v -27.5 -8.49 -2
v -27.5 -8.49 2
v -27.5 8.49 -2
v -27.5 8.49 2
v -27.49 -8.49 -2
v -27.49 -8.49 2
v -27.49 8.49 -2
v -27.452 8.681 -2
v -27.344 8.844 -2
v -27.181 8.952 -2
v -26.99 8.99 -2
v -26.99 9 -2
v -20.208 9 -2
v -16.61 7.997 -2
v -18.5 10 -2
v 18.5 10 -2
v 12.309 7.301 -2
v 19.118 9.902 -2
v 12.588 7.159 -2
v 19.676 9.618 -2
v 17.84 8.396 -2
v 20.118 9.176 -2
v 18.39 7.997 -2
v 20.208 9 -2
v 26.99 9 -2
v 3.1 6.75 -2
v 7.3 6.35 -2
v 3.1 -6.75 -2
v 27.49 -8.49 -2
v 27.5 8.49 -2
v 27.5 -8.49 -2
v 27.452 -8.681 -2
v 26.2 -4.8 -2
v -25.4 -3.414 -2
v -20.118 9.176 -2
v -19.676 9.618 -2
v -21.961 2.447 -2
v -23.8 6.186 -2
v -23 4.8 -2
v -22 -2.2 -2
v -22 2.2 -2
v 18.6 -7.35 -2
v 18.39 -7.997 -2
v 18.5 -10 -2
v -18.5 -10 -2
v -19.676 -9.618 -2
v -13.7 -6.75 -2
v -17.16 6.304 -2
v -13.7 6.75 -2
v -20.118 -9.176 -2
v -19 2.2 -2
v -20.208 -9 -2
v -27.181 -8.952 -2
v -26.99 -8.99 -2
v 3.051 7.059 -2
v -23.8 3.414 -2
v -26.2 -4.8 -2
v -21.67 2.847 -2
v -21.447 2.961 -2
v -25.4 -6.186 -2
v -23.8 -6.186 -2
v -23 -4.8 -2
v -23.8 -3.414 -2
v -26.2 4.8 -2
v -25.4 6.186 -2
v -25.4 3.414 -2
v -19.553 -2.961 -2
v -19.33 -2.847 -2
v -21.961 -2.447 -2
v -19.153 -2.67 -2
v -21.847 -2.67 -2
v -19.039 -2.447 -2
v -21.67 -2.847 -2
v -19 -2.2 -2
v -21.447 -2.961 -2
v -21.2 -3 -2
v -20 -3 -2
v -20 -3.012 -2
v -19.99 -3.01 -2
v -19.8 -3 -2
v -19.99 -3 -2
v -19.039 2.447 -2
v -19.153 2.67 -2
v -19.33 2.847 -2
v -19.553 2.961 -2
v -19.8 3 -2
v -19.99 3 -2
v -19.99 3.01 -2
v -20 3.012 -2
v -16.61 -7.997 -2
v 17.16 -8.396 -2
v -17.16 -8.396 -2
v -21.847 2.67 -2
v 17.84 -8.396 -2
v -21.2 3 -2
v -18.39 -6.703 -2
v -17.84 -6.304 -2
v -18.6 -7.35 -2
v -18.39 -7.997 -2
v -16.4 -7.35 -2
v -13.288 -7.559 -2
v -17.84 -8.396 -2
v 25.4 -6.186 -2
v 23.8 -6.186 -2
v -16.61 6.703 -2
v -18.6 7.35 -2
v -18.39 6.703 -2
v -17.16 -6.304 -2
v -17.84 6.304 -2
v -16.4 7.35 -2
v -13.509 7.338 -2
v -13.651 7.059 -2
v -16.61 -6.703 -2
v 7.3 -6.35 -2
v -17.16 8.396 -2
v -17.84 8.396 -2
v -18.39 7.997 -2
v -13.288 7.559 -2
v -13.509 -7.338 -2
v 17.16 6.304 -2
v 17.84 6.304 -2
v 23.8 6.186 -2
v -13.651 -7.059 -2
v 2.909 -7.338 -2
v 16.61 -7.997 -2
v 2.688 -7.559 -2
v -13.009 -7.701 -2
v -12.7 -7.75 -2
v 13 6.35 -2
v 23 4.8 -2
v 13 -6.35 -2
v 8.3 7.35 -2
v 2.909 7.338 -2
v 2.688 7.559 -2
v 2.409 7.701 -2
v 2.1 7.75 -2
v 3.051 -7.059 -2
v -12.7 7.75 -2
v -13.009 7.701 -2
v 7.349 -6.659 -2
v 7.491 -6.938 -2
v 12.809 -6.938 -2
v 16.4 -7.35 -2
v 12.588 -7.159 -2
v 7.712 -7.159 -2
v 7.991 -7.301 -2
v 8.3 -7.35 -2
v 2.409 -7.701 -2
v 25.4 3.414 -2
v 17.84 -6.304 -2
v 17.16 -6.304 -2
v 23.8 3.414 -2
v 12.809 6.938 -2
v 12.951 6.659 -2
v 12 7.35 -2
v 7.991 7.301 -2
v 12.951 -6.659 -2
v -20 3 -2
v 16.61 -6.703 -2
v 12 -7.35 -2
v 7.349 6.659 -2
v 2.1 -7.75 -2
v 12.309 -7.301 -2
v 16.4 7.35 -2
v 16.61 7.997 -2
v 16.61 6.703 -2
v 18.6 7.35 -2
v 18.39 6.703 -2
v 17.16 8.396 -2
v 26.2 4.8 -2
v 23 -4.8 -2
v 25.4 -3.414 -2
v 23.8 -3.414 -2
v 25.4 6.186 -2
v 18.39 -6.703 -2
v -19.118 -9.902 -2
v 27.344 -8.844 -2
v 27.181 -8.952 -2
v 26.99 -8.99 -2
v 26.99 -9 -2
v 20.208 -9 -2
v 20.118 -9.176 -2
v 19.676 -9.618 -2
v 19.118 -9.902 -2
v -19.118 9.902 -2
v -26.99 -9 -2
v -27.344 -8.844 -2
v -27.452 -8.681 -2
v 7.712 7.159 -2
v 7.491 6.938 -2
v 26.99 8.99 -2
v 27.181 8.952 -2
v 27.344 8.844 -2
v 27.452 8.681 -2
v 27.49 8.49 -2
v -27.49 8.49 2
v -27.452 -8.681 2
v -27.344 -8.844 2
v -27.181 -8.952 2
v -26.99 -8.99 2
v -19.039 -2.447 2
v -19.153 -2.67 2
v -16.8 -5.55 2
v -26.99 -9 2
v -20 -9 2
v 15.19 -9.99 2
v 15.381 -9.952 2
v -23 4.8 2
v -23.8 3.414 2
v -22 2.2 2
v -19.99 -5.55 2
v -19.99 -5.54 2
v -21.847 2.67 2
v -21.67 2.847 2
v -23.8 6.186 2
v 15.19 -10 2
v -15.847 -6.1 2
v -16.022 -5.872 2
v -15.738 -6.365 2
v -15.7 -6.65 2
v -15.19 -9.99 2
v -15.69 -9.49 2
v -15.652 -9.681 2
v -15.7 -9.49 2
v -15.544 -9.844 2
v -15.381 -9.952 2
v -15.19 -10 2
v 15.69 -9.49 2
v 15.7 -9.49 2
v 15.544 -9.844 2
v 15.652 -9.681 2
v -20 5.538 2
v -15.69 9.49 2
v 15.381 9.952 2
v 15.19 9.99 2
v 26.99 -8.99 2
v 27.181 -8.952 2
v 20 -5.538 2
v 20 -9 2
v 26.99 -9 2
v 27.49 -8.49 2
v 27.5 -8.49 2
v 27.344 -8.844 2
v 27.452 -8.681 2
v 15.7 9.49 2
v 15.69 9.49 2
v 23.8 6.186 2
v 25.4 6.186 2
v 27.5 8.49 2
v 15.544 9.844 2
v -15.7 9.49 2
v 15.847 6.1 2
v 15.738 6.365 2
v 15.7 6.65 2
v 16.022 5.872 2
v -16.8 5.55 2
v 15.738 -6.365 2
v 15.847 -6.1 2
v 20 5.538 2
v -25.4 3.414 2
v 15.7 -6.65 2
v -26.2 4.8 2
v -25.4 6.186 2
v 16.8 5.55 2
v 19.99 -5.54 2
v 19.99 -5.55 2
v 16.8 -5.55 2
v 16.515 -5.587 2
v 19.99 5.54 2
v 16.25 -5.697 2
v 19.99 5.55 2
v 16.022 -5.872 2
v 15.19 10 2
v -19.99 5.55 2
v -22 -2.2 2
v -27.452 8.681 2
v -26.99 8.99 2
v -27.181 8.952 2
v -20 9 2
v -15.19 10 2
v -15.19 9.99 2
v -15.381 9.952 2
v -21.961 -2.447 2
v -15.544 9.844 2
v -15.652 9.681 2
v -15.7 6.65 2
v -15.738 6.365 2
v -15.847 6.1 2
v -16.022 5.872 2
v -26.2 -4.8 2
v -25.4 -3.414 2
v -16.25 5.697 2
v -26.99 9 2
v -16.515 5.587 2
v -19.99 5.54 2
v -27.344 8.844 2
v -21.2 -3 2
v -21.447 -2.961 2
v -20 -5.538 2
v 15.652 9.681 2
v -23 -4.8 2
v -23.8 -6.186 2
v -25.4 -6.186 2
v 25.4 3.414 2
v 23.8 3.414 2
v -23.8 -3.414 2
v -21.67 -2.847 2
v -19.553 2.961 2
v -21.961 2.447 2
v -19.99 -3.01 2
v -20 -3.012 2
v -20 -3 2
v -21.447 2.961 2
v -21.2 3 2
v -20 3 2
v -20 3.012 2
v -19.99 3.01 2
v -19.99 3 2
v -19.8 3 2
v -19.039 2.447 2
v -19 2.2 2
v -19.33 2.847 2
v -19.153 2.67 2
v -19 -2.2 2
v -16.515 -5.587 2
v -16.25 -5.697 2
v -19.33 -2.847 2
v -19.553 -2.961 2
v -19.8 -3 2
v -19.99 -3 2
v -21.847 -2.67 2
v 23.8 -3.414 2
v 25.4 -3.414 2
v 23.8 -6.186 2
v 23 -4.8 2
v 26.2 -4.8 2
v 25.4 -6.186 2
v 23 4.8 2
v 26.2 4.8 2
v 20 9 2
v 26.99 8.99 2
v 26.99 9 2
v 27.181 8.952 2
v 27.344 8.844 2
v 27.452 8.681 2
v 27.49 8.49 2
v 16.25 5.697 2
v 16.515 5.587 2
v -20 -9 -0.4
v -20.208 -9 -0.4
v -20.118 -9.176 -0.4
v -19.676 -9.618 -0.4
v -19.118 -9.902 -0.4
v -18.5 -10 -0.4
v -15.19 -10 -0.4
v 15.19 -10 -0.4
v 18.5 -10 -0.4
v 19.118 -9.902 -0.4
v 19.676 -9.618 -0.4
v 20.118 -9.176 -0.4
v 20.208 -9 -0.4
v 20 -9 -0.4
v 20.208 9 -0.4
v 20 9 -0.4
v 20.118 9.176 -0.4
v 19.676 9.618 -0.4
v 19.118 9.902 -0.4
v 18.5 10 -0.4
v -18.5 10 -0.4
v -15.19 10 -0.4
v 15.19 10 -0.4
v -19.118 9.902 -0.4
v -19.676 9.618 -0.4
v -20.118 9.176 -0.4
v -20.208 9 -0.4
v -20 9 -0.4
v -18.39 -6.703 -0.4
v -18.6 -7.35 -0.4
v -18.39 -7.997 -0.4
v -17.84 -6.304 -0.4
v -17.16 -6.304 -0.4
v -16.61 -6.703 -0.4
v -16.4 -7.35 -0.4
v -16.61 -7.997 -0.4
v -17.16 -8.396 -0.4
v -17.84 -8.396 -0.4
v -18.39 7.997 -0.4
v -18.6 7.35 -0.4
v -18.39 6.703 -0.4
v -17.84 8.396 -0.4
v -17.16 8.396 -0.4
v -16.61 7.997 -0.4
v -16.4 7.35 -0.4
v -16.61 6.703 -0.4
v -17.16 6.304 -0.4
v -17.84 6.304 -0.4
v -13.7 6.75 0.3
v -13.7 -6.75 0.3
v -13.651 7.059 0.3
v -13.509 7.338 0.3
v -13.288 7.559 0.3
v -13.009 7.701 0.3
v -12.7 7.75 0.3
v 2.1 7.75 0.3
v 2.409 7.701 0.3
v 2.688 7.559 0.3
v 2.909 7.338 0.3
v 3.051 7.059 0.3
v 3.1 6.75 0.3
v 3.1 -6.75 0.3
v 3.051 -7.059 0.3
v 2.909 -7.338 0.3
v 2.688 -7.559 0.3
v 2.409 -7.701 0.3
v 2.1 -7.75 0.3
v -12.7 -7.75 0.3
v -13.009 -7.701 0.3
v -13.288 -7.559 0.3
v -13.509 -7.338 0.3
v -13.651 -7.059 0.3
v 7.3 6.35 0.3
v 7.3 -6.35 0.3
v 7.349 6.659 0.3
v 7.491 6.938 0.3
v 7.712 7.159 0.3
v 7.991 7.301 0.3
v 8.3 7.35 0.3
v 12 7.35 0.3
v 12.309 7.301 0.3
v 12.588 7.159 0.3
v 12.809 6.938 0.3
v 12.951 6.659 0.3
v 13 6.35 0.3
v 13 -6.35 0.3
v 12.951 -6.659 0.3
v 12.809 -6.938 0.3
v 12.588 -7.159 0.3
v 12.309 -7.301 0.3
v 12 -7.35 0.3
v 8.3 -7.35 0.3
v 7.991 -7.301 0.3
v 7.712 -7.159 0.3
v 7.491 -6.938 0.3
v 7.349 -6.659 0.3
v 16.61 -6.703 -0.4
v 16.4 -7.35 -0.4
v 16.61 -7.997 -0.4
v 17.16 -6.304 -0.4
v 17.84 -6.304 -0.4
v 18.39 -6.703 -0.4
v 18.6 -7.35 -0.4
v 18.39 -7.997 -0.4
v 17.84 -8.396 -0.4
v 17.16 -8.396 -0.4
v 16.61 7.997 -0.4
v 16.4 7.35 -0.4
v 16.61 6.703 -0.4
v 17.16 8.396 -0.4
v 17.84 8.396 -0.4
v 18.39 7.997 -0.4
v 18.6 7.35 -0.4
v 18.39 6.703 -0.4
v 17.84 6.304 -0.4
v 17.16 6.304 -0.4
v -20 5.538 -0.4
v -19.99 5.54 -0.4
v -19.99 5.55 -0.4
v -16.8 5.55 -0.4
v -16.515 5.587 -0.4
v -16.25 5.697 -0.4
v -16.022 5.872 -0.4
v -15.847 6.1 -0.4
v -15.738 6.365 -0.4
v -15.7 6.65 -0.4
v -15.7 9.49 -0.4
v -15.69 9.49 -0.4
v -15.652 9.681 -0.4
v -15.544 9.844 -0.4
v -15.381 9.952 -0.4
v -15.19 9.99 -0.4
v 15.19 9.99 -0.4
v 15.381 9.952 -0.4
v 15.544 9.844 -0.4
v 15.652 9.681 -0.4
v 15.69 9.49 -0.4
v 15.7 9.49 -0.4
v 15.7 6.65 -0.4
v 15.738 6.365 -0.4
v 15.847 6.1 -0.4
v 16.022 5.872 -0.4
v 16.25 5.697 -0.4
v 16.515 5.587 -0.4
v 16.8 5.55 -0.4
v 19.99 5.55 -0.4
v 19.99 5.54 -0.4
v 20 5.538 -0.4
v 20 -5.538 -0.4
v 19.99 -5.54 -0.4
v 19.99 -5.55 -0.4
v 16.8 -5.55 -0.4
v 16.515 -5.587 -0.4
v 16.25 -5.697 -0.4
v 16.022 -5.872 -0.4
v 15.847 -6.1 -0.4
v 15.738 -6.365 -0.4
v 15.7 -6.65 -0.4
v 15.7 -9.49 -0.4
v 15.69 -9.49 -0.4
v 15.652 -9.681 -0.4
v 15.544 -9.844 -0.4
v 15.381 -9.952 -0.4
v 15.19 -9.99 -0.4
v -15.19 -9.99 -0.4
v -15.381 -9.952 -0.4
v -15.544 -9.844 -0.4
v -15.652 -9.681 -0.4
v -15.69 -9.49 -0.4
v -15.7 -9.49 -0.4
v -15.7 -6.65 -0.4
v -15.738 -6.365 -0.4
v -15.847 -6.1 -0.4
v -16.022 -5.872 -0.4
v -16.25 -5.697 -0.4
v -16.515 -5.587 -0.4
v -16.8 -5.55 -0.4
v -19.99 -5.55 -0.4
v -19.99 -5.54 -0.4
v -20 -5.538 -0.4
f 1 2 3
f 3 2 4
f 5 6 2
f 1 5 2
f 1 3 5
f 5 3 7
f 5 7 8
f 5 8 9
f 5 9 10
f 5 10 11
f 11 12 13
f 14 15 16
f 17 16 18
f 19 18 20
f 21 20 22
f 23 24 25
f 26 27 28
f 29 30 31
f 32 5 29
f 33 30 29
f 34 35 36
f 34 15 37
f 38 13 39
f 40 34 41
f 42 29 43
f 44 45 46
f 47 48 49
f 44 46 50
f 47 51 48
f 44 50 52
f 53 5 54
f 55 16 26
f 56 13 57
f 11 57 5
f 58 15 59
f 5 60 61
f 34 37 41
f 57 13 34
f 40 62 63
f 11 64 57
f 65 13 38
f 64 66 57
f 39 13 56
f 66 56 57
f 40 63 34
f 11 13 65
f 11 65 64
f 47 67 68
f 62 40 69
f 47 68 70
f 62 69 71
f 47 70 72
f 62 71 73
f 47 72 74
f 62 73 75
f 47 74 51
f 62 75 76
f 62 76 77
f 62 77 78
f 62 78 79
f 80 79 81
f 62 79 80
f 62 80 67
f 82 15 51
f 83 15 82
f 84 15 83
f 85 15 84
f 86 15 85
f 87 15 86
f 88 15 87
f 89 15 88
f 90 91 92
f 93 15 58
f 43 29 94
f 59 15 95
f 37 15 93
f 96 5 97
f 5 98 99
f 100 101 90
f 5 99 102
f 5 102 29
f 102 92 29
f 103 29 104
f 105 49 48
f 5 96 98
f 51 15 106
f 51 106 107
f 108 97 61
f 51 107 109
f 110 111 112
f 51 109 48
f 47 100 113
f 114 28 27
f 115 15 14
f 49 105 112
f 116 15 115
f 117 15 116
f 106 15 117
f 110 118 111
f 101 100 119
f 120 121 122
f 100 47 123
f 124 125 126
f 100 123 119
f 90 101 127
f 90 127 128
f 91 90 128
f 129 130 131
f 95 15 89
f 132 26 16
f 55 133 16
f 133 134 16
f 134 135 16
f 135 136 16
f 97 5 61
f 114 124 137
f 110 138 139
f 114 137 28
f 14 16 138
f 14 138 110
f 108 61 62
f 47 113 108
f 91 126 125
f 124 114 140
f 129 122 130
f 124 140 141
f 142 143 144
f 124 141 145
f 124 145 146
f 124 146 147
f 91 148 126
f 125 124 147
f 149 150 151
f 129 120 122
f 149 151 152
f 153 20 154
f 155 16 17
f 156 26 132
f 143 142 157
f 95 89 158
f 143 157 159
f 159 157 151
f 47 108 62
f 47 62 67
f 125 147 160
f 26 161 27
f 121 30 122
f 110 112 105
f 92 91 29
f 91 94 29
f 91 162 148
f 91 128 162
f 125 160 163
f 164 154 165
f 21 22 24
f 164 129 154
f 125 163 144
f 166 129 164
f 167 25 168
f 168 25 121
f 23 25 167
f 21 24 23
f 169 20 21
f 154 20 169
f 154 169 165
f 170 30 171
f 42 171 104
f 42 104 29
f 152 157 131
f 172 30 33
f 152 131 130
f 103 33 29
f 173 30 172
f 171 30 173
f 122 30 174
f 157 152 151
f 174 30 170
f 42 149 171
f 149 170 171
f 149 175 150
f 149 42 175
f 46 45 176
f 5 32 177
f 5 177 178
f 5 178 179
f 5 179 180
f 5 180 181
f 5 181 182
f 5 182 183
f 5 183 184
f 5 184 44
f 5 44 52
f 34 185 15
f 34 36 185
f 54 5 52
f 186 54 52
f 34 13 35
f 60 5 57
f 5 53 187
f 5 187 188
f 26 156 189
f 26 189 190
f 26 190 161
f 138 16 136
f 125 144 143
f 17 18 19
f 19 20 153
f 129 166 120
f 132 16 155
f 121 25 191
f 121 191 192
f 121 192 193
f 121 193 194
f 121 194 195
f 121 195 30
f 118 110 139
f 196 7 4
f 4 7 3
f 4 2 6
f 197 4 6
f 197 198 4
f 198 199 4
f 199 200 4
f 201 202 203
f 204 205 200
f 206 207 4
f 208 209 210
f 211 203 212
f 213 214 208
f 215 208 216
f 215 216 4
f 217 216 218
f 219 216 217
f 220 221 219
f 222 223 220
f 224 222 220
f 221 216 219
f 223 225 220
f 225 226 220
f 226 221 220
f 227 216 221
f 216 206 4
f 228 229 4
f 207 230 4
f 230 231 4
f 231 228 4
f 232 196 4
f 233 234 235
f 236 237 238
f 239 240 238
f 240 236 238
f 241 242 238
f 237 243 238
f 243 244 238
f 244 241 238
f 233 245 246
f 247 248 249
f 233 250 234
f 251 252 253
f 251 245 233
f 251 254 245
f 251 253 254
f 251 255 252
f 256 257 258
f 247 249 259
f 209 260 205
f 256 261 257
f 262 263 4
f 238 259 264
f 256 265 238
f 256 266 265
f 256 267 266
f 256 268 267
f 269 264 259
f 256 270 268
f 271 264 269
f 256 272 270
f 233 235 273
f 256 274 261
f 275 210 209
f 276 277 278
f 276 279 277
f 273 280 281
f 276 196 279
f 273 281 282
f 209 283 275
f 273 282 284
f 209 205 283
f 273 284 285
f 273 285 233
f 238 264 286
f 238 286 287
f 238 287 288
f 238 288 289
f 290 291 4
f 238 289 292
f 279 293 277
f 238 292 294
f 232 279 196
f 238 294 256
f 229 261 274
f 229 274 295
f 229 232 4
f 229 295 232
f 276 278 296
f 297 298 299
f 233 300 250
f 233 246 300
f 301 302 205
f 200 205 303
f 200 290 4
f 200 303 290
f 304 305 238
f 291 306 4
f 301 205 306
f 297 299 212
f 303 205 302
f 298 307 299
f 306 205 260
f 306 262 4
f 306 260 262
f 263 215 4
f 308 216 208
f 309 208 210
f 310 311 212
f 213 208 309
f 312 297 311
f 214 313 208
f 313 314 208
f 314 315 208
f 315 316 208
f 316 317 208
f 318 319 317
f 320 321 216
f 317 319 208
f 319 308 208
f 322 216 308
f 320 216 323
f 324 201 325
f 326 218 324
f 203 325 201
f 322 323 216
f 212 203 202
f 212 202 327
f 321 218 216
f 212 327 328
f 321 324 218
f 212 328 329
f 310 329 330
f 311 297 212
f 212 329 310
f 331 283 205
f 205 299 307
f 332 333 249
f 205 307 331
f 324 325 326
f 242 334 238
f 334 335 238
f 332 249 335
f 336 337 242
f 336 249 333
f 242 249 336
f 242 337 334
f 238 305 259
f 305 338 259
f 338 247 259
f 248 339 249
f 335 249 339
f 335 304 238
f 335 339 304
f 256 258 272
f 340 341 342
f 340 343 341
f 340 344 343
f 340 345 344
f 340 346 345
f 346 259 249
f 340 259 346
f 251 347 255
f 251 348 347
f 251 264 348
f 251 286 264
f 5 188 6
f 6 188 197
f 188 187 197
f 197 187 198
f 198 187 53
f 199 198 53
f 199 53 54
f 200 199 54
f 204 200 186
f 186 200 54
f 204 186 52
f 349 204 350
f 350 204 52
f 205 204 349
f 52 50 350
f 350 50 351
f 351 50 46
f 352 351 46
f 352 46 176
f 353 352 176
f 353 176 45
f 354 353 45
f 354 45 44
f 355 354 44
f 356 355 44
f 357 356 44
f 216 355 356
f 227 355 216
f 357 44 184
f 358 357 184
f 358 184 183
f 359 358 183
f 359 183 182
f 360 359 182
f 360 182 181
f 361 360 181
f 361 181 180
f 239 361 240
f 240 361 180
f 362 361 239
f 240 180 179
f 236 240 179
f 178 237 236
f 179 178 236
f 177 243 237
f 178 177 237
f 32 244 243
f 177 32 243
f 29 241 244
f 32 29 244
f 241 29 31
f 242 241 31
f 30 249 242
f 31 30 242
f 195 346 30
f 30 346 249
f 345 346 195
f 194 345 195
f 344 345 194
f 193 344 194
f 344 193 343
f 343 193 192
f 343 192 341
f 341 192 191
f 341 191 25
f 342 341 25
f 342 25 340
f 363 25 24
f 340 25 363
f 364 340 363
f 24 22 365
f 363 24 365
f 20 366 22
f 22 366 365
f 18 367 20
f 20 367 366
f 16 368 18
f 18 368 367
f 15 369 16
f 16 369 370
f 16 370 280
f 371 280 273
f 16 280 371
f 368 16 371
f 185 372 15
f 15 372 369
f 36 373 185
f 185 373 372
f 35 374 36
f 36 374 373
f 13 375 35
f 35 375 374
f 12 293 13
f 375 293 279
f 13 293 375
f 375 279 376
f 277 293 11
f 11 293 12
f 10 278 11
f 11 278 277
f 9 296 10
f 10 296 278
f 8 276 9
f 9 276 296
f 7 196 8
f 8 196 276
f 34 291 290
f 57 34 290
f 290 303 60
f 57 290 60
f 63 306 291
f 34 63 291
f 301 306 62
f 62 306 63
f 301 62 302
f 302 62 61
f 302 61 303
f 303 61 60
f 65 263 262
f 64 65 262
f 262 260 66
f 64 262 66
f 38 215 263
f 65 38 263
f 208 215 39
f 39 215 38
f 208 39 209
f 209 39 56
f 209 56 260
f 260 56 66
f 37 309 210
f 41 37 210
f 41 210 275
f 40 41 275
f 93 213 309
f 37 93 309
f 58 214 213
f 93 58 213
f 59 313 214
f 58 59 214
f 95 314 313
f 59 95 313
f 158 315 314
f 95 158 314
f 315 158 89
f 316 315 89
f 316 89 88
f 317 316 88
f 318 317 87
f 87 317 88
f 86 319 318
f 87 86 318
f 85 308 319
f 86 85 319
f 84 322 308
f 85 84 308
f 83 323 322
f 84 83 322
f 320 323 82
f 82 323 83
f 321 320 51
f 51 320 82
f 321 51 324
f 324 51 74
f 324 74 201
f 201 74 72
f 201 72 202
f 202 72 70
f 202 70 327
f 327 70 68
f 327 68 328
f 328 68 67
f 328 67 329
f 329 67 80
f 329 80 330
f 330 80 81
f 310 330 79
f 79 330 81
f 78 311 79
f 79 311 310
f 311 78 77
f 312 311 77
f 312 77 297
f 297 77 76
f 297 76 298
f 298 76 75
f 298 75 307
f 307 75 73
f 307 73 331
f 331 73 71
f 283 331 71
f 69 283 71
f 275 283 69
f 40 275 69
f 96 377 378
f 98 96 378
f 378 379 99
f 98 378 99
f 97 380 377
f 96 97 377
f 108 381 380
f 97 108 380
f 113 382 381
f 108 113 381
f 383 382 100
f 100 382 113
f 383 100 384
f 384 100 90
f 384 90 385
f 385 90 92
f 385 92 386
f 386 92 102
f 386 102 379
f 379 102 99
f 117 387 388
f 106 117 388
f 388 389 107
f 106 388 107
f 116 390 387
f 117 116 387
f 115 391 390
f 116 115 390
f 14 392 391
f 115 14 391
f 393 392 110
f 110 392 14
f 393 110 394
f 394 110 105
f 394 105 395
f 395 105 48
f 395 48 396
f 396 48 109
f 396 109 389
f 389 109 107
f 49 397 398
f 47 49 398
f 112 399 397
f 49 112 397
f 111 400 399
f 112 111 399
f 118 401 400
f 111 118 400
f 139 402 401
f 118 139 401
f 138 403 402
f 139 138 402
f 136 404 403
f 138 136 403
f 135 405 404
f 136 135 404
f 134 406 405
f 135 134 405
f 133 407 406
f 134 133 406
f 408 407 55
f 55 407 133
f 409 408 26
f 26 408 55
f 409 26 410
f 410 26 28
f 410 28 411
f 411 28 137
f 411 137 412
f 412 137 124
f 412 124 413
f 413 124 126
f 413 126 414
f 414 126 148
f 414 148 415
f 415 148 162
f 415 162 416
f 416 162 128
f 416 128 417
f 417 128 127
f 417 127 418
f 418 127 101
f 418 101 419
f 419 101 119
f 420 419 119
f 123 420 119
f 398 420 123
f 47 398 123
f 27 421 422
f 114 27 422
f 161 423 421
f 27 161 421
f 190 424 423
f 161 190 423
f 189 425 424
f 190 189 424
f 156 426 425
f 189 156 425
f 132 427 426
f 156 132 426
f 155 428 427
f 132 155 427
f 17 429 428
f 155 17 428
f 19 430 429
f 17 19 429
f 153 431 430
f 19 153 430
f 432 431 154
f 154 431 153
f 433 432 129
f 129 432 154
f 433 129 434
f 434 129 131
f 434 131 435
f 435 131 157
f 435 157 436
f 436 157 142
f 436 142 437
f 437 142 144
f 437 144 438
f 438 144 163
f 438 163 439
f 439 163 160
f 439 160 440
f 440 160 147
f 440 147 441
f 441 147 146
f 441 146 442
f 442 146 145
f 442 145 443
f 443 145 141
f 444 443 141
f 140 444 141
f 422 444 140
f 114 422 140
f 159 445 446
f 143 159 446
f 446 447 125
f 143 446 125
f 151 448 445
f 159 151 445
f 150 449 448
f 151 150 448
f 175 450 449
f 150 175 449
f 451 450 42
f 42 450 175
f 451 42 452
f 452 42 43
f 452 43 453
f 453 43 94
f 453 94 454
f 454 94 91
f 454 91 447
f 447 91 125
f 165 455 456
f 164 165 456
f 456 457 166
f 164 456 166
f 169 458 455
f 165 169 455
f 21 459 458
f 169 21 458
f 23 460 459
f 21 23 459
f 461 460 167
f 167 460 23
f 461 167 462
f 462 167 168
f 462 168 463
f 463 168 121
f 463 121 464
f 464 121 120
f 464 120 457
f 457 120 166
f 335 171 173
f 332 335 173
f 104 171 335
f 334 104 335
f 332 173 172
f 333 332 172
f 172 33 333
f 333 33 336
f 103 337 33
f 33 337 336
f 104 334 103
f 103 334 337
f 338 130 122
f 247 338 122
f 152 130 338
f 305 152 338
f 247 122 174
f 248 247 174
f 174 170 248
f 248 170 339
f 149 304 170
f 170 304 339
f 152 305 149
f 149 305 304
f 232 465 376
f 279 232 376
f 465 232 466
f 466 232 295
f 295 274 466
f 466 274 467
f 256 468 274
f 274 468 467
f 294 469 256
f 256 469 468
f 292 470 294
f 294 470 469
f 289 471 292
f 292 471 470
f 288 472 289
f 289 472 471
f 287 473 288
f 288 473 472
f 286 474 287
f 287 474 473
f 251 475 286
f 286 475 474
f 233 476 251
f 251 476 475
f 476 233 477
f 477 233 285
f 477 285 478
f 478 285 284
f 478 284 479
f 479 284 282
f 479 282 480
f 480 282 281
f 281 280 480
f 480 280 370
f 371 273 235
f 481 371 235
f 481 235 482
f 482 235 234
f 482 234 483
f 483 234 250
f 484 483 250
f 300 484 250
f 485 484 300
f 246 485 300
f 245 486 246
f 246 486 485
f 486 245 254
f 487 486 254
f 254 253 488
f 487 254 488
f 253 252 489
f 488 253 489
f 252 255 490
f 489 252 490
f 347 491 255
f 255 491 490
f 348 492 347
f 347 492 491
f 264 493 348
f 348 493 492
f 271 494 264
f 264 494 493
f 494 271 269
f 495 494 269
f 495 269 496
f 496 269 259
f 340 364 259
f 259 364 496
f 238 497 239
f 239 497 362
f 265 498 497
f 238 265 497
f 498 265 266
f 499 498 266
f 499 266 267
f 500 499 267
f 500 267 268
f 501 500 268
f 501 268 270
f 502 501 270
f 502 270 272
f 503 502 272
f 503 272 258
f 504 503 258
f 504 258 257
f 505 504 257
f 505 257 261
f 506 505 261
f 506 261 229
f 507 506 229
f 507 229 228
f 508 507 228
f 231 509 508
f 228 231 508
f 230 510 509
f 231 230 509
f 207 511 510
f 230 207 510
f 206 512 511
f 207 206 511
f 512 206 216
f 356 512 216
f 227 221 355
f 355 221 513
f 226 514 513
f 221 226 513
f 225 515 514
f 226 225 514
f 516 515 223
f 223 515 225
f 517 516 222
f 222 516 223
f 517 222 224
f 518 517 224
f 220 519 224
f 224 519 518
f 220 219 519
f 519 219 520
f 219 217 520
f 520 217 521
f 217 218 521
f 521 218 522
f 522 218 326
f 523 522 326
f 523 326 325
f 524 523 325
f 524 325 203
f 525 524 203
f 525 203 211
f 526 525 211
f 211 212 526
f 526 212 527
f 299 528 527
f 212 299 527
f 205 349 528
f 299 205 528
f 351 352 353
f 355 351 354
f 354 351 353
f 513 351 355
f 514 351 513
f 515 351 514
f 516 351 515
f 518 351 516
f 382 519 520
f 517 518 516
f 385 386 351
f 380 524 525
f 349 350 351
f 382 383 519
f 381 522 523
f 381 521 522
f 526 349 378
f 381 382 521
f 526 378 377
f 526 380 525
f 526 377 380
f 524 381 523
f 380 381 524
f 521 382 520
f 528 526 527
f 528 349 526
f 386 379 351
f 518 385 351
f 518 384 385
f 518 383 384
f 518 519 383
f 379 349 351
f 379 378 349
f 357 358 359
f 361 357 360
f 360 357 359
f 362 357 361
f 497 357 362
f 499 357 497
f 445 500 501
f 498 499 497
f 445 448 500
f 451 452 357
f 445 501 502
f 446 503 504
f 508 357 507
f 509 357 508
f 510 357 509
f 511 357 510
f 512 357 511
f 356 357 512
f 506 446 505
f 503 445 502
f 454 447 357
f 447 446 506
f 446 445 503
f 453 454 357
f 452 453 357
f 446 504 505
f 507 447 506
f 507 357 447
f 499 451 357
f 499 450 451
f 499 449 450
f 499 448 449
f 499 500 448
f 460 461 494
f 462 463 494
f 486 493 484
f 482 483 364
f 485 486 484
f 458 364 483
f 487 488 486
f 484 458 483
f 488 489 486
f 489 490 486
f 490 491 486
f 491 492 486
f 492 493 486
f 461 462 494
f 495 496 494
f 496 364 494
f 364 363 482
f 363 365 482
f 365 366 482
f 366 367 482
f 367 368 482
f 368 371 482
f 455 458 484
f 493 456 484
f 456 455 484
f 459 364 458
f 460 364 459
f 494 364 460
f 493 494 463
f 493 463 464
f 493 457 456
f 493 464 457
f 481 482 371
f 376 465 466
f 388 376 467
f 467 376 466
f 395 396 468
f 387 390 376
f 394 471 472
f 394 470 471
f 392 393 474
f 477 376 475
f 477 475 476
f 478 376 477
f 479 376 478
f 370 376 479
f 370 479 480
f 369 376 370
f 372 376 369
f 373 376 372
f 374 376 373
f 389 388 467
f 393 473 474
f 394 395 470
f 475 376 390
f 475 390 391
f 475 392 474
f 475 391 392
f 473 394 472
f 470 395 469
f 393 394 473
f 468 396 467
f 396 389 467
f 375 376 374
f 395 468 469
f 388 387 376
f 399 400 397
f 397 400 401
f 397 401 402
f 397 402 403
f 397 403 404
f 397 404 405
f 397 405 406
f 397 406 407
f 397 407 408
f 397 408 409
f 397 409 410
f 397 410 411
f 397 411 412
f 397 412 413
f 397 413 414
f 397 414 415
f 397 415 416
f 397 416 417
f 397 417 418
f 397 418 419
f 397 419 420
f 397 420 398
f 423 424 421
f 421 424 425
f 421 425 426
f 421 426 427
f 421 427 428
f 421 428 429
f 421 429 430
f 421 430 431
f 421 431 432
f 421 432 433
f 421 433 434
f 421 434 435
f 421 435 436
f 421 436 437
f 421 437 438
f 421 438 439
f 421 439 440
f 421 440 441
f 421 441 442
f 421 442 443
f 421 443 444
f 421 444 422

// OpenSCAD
// file: obiscad/attach.scad
//---------------------------------------------------------------
//-- Openscad Attachment library
//-- Attach easily parts. Make your designs more reusable
//---------------------------------------------------------------
//-- This is a component of the obiscad opescad tools by Obijuan
//-- (C) Juan Gonzalez-Gomez (Obijuan)
//-- Sep-2012
//---------------------------------------------------------------
//-- Released under the GPL license
//---------------------------------------------------------------

use <vector.scad>

module connector(c)
{
  p = c[0];
  v = c[1];
  ang = c[2];

  color("Gray") point(p);
  translate(p)
    color("Gray") vector(unitv(v)*6,l_arrow=2);
}


//-- a,b are connectors
module attach(a,b)
{
  //-- Get the data from the connectors
  vref = b[1];
  v = a[1];
  roll=a[2];
  pos1 = a[0];
  pos2 = b[0];

  //-------- Calculations for the "orientate operator"
  //-- Calculate the rotation axis
  raxis = cross(vref,v);
    
  //-- Calculate the angle between the vectors
  ang = anglev(vref,v);

  translate(pos1)
    //-- Orientate operator
    rotate(a=roll, v=v)  rotate(a=ang, v=raxis)
      translate(-pos2)
	child(0); 
}

module arm(debug=false)
{
  
  cube(asize,center=true);

  if (debug) {
    frame(l=10);
    connector(a);
  }
}

module Test()
{
  cube(size,center=true);
  attach(c1,a) arm(debug=true);
  attach(c2,a) arm();
}

//-- Main part
size = [10,10,10];
c1 = [ [0,0,size[2]/2], [0,0,1], 10];
c2 = [ [-size[0]/2,0,0], [-1,0,0], 90 ];

*connector(c1);
*connector(c2);
*cube(size,center=true);


//-- Attachable part
asize = [5,20,3];
a = [ [0,asize[1]/2-3,-asize[2]/2], [0,0,1], 0  ];

*translate([30,0,0])  arm(debug=true);

*attach(c1,a) arm();
*attach(c2,a) arm();
  

orientate([1,1,1])
Test();
// file: obiscad/bcube.scad
//------------------------------------------------------------------------------
//  Bevel edge cube.
//  (c) Juan Gonzalez-Gomez (Obijuan), Sep-2012
//------------------------------------------------------------------------------

//----------------- IMPLEMENTATION USING THE MINKOWSKI OPERATOR ----------------

//------------------------------------------------------------------------------
//-- Bevel Cube main function
//-- Parameters:
//--   * Size:  Cube size
//--   * cr : Corner radius (if cr==0, a standar cube is built)
//--   * cres:  Corner resolution (in points). cres=0 means flat corners
//------------------------------------------------------------------------------
module bcube(size,cr=0,cres=0)
{
  //-- Internal cube size
  bsize = size - 2*[cr,cr,0];

  //-- Get the (x,y) coorner coordinates in the 1st cuadrant
  x = bsize[0]/2;
  y = bsize[1]/2;

  //-- A corner radius of 0 means a standar cube!
  if (cr==0)
    cube(bsize,center=true);
  else {

      
      //-- The height of minkowski object is double. So
      //-- we sould scale by 0.5
      scale([1,1,0.5])

      //-- This translation is for centering the minkowski objet
      translate([-x, -y,0])

      //-- Built the  beveled cube with minkowski
      minkowski() {

        //-- Internal cube
        cube(bsize,center=true);

        //-- Cylinder in the corner (1st cuadrant)
        translate([x,y, 0])
          cylinder(r=cr, h=bsize[2],center=true, $fn=4*(cres+1));
      }
  }

}


//-- Examples of use of the bcube() module

//-- Standar cube
translate([-15,15,0])
bcube([20,20,10]);

//-- Beveled cube (0 point resolution)
translate([15,15,0])
  bcube([20,20,10],cr=4);

//-- Beveled cube (1 point resolution)
translate([-15,-15,0])
  bcube([20,20,10],cr=4, cres=1);

//-- Beveled cube (4 points resolution)
translate([15,-15,0])
  bcube([20,20,10],cr=4, cres=4);
// file: obiscad/utils.scad
//---------------------------------------------------------------
//-- Utils. General utilities...
//-- This is a component of the obiscad opescad tools by Obijuan
//-- (C) Juan Gonzalez-Gomez (Obijuan)
//-- Sep-2012
//---------------------------------------------------------------
//-- Released under the GPL license
//---------------------------------------------------------------

//-----------------------------------------------------
//-- Functions for converting a scalar into a vector:
//-----------------------------------------------------
//-- The scalar is interpreted as the x coordinate
function VX(x) = [x,0,0];

//-- The scalar is interpreted as the y coordinate
function VY(y) = [0,y,0];

//-- The scalar is interpreted as the z coordinate
function VZ(z) = [0,0,z];


//-----------------------------------------
//-- Definition for accessing vector componentes easily
//--------------------------------------------------------
X = 0;
Y = 1;
Z = 2;
// main file
//-------------------------------------------------------------------
//-- Servo lid replacement
//-- (c) Juan Gonzalez-Gomez (Obijuan). Sep-2012
//-------------------------------------------------------------------
//-- The original lid has been design for the Futaba 3003 servos
//-- But, as it is a parameterized design, the user can easily
//-- adapt to other servos
//--
//--  In addition, it is very easy to modify the lid to add a fake
//--- shaft, or in general customize it for improving the design
//--
//--  It is particulary interesting for designing robots. If a fake
//--  shaft is included, the mechanical designs are greatly simplified! 
//-------------------------------------------------------------------
//-- Released under the GPL license. 
//-------------------------------------------------------------------

//---  Obiscad!!
include <obiscad/utils.scad>
use <obiscad/bcube.scad>
use <obiscad/attach.scad>
use <obiscad/bevel.scad>

//-----------------------------------------------------------------------------------
//-- USER AREA. The user should change this parameters depending on the Servo used  
//-- The default values have been calculated for the SERVO FUTABA 3003
//-----------------------------------------------------------------------------------

//-- Fake shaft
fake_shaft = false;   //-- Set to false for removing
fake_shaft_len = 6;  //-- Shaft length
fake_shaft_diam = 8;  //-- Shaft diameter
fake_shaft_xpos = -10.1;  //-- X coordinate of the shaf position



//-------------------------- Main Base --------------------------
bsize = [41, 20, 4];  //-- base size
b_cr=2;               //-- Base corner radius
b_cres=4;             //-- Baser corner resolution


//-- ----------------------- Screw cutouts ----------------------
//-- These are the areas removed from the main base to give
//-- room to the screw heads
screw_lh = 1.6;         //- Screw layer height, Relative to the bottom
screw_head_diam = 3.2;  //-- Screw head diameter
screw_head_clear = 0.2; //-- Space between the screw head and the base


//-------------------------- Drills ------------------------------
ddiam=2.2;  //-- Drills diameter
ddx=35;     //-- Distance in the x axis between the drills
ddy=14.7;   //-- Distance in the y axis between the distance

//-------------------------- Electronic cutouts -------------------
//-- These are removed from the bottom of the base to make room
//-- for the servo electronics
elec_cutout_lh = 2.3;

//-- dimensions (on xy plane) of the cutouts
elec_cutout_dim = [
  [16.8, 15.5],   //-- Left cutout
  [5.7,  14.7],   //-- Right cutout
];

//-- Distance from the nearer drill (on the x axis)
//-- (not from the drill center, but the nearest drill surface)
//-- (so that it can be meassured easily with a caliper)
elec_cutout_clearx = [
  2.7, 3.4
];

elec_co_cr = 1;    //-- Corner radius
elec_co_cres = 4;  //-- Corner resolution

//-------------------------- Cable hole ----------------------------
//-- Cable hole dimensions
cable_hole_dim = [1.5, 6];

ch_cr = 0.8;  //-- Cable hole corner radius
ch_cres = 4;  //-- Cable hole corner resolution

//------------------------ Beveled edges -----------------------------
bevel_cr = 0.5;


//------------------------ Servo ears -----------------------
servo_ears = true;

//-- Estandar futaba ears
//ears_size = [7.0, 18, 2.5];


//-- Ears with the same height than the cover
//-- Uncomment if needed
ears_size = [7.0, 18, bsize[Z]];

ears_drill = 3.2;

//-- Penetration of ear in the cover
ear_pen = 0.5;  

//-- Ear drill coordinates
ear_drill_pos = [4.1, 9.6/2, 0];


//---------------------------------------------------------------------------------
//---        IMPLEMENTATION!!
//---------------------------------------------------------------------------------
//--  The USER should be able to change the base modifying only the above
//--  user parameters
//--
//--  The implementation is divided into 2 stages:
//--
//--  1) DATA calculation: It creates tables and definitions for further
//--     build the base more easily
//--  2) CODE: It just build the Servo Base, based only on the data
//-----------------------------------------------------------------------------------


//---------------------------------------
//-- DATA for the drills
//---------------------------------------
//-- Calculate the drill coordinates from the center of the base
dx=ddx/2;
dy=ddy/2;

//-- Build the drill table, for automating the process of 
//-- making drills
//-- All the drill are symetric respect the x and y axis
drill_table = [
  [dx,   dy, 0],
  [-dx,  dy, 0],
  [-dx, -dy, 0],
  [dx,  -dy, 0],
];


//-------------------------------------------------------------
//-- DATA for the First layer: screw layer
//-------------------------------------------------------------

//-- Extra value. Does not matter the value (but it should be > 0
extra = 5;


//-- Calculate the clear distance from the drill center
clear = screw_head_diam/2 + screw_head_clear;

//-- Calculate the cutout size
scx = bsize[X]/2-drill_table[0][X]+clear+extra;
scy = bsize[Y]/2-drill_table[0][Y]+clear+extra;
screw_cutout_size = [scx,scy, bsize[Z]];

//-- vector for the z position of the cutouts:
//-- They are screw_lh high from the bottom 
sc_z = [0,0, -bsize[Z]/2+screw_lh];


//-- Connector table. It contains the pairs of connectors for performing
//-- the attach operation.
//-- The first connector of the pair belongs to the base, the second to the cutout
//-- The connectors coordinates are relative to the drills
screw_connector_table = [

  //-- First quadrant
  [ [drill_table[0]+[-clear, -clear,0]+sc_z, [0,0,1], 0 ],  //-- First pair of connectors
   [[-screw_cutout_size[X]/2, -screw_cutout_size[Y]/2, -screw_cutout_size[Z]/2],[0,0,1],0]
  ],

  //-- Second quadrant
  [ [drill_table[1]+[clear, -clear,0]+sc_z, [0,0,1], 0 ],
    [[screw_cutout_size[X]/2, -screw_cutout_size[Y]/2, -screw_cutout_size[Z]/2],[0,0,1],0]
  ],

  //-- Third quadrant
  [ [drill_table[2]+[clear, clear,0]+sc_z, [0,0,1], 0 ],
    [[screw_cutout_size[X]/2, screw_cutout_size[Y]/2, -screw_cutout_size[Z]/2],[0,0,1],0]
  ],

  //-- Forth quadrant
  [ [drill_table[3]+[-clear, clear,0]+sc_z, [0,0,1], 0 ],
    [[-screw_cutout_size[X]/2, screw_cutout_size[Y]/2, -screw_cutout_size[Z]/2],[0,0,1],0]
  ],
 
];

//---------------------------------------
//-- DATA for the electronics cutouts
//---------------------------------------

//-- vector for the z position of the cutouts:
//-- They are elec_cutout_lh high from the bottom 
ec_z = [0,0, -bsize[Z]/2+elec_cutout_lh];

//-- Auxiliary table with the cutout size
elec_co_size = [
  [elec_cutout_dim[0][X], elec_cutout_dim[0][Y], bsize[Z]],
  [elec_cutout_dim[1][X], elec_cutout_dim[1][Y], bsize[Z]]
];


//-- Connector table. It contains the pairs of connectors for performing
//-- the attach operation.
//-- The first connector of the pair belongs to the base, the second to the cutout
//-- The connectors coordinates are relative to the drills
elec_connector_table = [

  //-- Connector pair for the Left cutout (relative to the upper-left drill)
  [ [VX(drill_table[1][X]+ddiam/2+elec_cutout_clearx[0])+
     VY(elec_co_size[0][Y]/2)+ ec_z,
     [0,0,1], 0],                        //-- Base connector
     
    [[-elec_co_size[0][X]/2, elec_co_size[0][Y]/2 ,elec_co_size[0][Z]/2],[0,0,1],0]
  ],
 
  //-- connector pair for the right cutout (relative to the upper-right drill)
  [ [VX(drill_table[0][X]-ddiam/2-elec_cutout_clearx[1])+
     VY(elec_co_size[1][Y]/2)+ec_z,
     [0,0,1], 0],

    [[elec_co_size[1][X]/2, elec_co_size[1][Y]/2 ,elec_co_size[1][Z]/2],[0,0,1],0]
  ],

];

//--------------------------------
//-- DATA for the cable hole
//--------------------------------
//-- Calculate the cable hole size
//-- In the x-axis is doble sized
ch_size = [2*cable_hole_dim[X], cable_hole_dim[Y], bsize[Z]+extra];

//-- Connectors pair for attaching a bcube and make the difference
ch_conn_pair = [
  [[-bsize[X]/2,0,0], [0,0,1], 0],
  [[0,0,0], [0,0,1], 0],
];

//---------------------------------------
//-- DATA for beveling some edges
//---------------------------------------

//-- Table of Pair of connectors for beveling
//-- corner connector, normal connect and bevel length
bevel_table = [
  
  //-- cable hole external corners
  //-- Upper
  [ [[-bsize[X]/2, ch_size[Y]/2 ,0], [0 ,0 ,1], 0],
    [[-bsize[X]/2, ch_size[Y]/2 ,0], [-1,-1,0], 0],
    bsize[Z]+extra 
  ],

  //-- Lower
  [ [[-bsize[X]/2, -ch_size[Y]/2 ,0], [0 ,0 ,1], 0],
    [[-bsize[X]/2, -ch_size[Y]/2 ,0], [-1,1,0], 0],
    bsize[Z]+extra 
  ],

  //-- Beveling the Upper-left screw cutout (1) 
  [ [[-bsize[X]/2, drill_table[1][Y]-clear ,bsize[Z]/2], [0 ,0 ,1], 0],
    [[-bsize[X]/2, drill_table[1][Y]-clear ,bsize[Z]/2], [-1,1,0], 0],
    2*(bsize[Z]-screw_lh) 
  ],

  //-- Beveling the Upper-left screw cutout (2) 
  [ [[drill_table[1][X]+clear, bsize[Y]/2 ,bsize[Z]/2], [0 ,0 ,1], 0],
    [[drill_table[1][X]+clear, bsize[Y]/2 ,bsize[Z]/2], [-1,1,0], 0],
    2*(bsize[Z]-screw_lh) 
  ],

   //-- Beveling the lower-left screw cutout (1) 
  [ [[-bsize[X]/2, drill_table[2][Y]+clear ,bsize[Z]/2], [0 ,0 ,1], 0],
    [[-bsize[X]/2, drill_table[2][Y]+clear ,bsize[Z]/2], [-1,-1,0], 0],
    2*(bsize[Z]-screw_lh) 
  ],

  //-- Beveling the lower-left screw cutout (2) 
  [ [[drill_table[2][X]+clear, -bsize[Y]/2 ,bsize[Z]/2], [0 ,0 ,1], 0],
    [[drill_table[2][X]+clear, -bsize[Y]/2 ,bsize[Z]/2], [-1,-1,0], 0],
    2*(bsize[Z]-screw_lh) 
  ], 

  //-- Beveling the Upper-right screw cutout (1) 
  [ [[bsize[X]/2, drill_table[0][Y]-clear ,bsize[Z]/2], [0 ,0 ,1], 0],
    [[bsize[X]/2, drill_table[0][Y]-clear ,bsize[Z]/2], [1,1,0], 0],
    2*(bsize[Z]-screw_lh) 
  ],

  //-- Beveling the Upper-right screw cutout (2) 
  [ [[drill_table[0][X]-clear, bsize[Y]/2 ,bsize[Z]/2], [0 ,0 ,1], 0],
    [[drill_table[0][X]-clear, bsize[Y]/2 ,bsize[Z]/2], [1,1,0], 0],
    2*(bsize[Z]-screw_lh) 
  ],

   //-- Beveling the lower-right screw cutout (1) 
  [ [[bsize[X]/2, drill_table[3][Y]+clear ,bsize[Z]/2], [0 ,0 ,1], 0],
    [[bsize[X]/2, drill_table[3][Y]+clear ,bsize[Z]/2], [1,-1,0], 0],
    2*(bsize[Z]-screw_lh) 
  ],

  //-- Beveling the lower-right screw cutout (2) 
  [ [[drill_table[3][X]-clear, -bsize[Y]/2 ,bsize[Z]/2], [0 ,0 ,1], 0],
    [[drill_table[3][X]-clear, -bsize[Y]/2 ,bsize[Z]/2], [1,-1,0], 0],
    2*(bsize[Z]-screw_lh) 
  ], 

];

//----------------------------------
//--  Fake shaft
//----------------------------------
//-- Define the connector pair
fs_con_pair = [
  [ [fake_shaft_xpos, 0, bsize[Z]/2],[0,0,1], 0],
  [[0,0,-fake_shaft_len/2],[0,0,1],0]
];

//-------------------------------
//--  DATA for the servo ears
//--------------------------------
//-- Calculate the ears position
ears_pos = [-ears_size[X]/2 - bsize[X]/2,0, ears_size[Z]/2 - bsize[Z]/2];

//-- Connector pais for beveling the servo ears
ear_conn_pair1 = [
    [[-ears_size[X]/2, ears_size[Y]/2, 0], [0,0,1],0],
    [[-ears_size[X]/2, ears_size[Y]/2, 0], [-1,1,0], 0],
];

ear_conn_pair2 = [
    [[-ears_size[X]/2, -ears_size[Y]/2, 0], [0,0,1],0],
    [[-ears_size[X]/2, -ears_size[Y]/2, 0], [-1,-1,0], 0],
];

module servo_ear()
{

  difference() {
    translate([ear_pen/2,0,0])  //-- ear_pen
      cube([ears_size[X]+ear_pen, ears_size[Y], ears_size[Z]], center = true );

    //-- Upper drill
    translate([ears_size[X]/2 - ear_drill_pos[X], ear_drill_pos[Y],0])
      cylinder(r=ears_drill/2, h = ears_size[Z]+extra, center = true);

    //-- Lower drill
    translate([ears_size[X]/2 - ear_drill_pos[X], -ear_drill_pos[Y],0])
      cylinder(r=ears_drill/2, h = ears_size[Z]+extra, center = true);
      
    //-- Bevel the left corners
    bevel(ear_conn_pair1[0], ear_conn_pair1[1], ears_size[Z]+extra, cr = bevel_cr);
    bevel(ear_conn_pair2[0], ear_conn_pair2[1], ears_size[Z]+extra, cr = bevel_cr);
  }
  
}

//----------------------------------------------------------------
//---         CODE!!
//----------------------------------------------------------------
//-- No numbers. Just the actions for creating the base
//-- It is very easy to remove parts: comment them out!
//-----------------------------------------------------------------


difference() {

  //-- Main Base
  bcube(bsize,cr=b_cr, cres=b_cres);
  
  //-- Screw cutouts
  for (con_pair = screw_connector_table) {
    attach(con_pair[0], con_pair[1])
      bcube(screw_cutout_size, cr=ddiam/2, cres=5);
  }
  

  //-- Drills
  for (pos  = drill_table) {
    translate(pos)
      cylinder(r=ddiam/2, h=bsize[Z]+extra, center=true, $fn=10);
  }

  //-- Electronics cutouts
  for (i=[0:1]) {
    attach(elec_connector_table[i][0], elec_connector_table[i][1])
      bcube(elec_co_size[i] , cr=elec_co_cr, cres = elec_co_cres);
  }

  //-- Cable hole
  attach(ch_conn_pair[0],ch_conn_pair[1])
    bcube(ch_size, cr=ch_cr, cres=ch_cres);

  //-- Beveling the edges
  for (tuple = bevel_table)
    bevel( tuple[0], tuple[1], l=tuple[2], cr=bevel_cr);

}


//-- Fake shaft

if (fake_shaft) {
  attach(fs_con_pair[0], fs_con_pair[1])
    cylinder(r=fake_shaft_diam/2, h=fake_shaft_len,center=true, $fn=50);
}



//--- Servo ears
if (servo_ears) {

  //-- Left ear. It has a cutout for making room for the wire
  translate(ears_pos) {
    difference() {
      servo_ear();
      translate([ears_size[X]/2,0,0])
        bcube(ch_size, cr=ch_cr, cres=ch_cres);
    }  
  }

  //-- Right ear
  translate([-ears_pos[X],0,ears_pos[Z]])
  mirror([1,0,0])
  servo_ear();
}
